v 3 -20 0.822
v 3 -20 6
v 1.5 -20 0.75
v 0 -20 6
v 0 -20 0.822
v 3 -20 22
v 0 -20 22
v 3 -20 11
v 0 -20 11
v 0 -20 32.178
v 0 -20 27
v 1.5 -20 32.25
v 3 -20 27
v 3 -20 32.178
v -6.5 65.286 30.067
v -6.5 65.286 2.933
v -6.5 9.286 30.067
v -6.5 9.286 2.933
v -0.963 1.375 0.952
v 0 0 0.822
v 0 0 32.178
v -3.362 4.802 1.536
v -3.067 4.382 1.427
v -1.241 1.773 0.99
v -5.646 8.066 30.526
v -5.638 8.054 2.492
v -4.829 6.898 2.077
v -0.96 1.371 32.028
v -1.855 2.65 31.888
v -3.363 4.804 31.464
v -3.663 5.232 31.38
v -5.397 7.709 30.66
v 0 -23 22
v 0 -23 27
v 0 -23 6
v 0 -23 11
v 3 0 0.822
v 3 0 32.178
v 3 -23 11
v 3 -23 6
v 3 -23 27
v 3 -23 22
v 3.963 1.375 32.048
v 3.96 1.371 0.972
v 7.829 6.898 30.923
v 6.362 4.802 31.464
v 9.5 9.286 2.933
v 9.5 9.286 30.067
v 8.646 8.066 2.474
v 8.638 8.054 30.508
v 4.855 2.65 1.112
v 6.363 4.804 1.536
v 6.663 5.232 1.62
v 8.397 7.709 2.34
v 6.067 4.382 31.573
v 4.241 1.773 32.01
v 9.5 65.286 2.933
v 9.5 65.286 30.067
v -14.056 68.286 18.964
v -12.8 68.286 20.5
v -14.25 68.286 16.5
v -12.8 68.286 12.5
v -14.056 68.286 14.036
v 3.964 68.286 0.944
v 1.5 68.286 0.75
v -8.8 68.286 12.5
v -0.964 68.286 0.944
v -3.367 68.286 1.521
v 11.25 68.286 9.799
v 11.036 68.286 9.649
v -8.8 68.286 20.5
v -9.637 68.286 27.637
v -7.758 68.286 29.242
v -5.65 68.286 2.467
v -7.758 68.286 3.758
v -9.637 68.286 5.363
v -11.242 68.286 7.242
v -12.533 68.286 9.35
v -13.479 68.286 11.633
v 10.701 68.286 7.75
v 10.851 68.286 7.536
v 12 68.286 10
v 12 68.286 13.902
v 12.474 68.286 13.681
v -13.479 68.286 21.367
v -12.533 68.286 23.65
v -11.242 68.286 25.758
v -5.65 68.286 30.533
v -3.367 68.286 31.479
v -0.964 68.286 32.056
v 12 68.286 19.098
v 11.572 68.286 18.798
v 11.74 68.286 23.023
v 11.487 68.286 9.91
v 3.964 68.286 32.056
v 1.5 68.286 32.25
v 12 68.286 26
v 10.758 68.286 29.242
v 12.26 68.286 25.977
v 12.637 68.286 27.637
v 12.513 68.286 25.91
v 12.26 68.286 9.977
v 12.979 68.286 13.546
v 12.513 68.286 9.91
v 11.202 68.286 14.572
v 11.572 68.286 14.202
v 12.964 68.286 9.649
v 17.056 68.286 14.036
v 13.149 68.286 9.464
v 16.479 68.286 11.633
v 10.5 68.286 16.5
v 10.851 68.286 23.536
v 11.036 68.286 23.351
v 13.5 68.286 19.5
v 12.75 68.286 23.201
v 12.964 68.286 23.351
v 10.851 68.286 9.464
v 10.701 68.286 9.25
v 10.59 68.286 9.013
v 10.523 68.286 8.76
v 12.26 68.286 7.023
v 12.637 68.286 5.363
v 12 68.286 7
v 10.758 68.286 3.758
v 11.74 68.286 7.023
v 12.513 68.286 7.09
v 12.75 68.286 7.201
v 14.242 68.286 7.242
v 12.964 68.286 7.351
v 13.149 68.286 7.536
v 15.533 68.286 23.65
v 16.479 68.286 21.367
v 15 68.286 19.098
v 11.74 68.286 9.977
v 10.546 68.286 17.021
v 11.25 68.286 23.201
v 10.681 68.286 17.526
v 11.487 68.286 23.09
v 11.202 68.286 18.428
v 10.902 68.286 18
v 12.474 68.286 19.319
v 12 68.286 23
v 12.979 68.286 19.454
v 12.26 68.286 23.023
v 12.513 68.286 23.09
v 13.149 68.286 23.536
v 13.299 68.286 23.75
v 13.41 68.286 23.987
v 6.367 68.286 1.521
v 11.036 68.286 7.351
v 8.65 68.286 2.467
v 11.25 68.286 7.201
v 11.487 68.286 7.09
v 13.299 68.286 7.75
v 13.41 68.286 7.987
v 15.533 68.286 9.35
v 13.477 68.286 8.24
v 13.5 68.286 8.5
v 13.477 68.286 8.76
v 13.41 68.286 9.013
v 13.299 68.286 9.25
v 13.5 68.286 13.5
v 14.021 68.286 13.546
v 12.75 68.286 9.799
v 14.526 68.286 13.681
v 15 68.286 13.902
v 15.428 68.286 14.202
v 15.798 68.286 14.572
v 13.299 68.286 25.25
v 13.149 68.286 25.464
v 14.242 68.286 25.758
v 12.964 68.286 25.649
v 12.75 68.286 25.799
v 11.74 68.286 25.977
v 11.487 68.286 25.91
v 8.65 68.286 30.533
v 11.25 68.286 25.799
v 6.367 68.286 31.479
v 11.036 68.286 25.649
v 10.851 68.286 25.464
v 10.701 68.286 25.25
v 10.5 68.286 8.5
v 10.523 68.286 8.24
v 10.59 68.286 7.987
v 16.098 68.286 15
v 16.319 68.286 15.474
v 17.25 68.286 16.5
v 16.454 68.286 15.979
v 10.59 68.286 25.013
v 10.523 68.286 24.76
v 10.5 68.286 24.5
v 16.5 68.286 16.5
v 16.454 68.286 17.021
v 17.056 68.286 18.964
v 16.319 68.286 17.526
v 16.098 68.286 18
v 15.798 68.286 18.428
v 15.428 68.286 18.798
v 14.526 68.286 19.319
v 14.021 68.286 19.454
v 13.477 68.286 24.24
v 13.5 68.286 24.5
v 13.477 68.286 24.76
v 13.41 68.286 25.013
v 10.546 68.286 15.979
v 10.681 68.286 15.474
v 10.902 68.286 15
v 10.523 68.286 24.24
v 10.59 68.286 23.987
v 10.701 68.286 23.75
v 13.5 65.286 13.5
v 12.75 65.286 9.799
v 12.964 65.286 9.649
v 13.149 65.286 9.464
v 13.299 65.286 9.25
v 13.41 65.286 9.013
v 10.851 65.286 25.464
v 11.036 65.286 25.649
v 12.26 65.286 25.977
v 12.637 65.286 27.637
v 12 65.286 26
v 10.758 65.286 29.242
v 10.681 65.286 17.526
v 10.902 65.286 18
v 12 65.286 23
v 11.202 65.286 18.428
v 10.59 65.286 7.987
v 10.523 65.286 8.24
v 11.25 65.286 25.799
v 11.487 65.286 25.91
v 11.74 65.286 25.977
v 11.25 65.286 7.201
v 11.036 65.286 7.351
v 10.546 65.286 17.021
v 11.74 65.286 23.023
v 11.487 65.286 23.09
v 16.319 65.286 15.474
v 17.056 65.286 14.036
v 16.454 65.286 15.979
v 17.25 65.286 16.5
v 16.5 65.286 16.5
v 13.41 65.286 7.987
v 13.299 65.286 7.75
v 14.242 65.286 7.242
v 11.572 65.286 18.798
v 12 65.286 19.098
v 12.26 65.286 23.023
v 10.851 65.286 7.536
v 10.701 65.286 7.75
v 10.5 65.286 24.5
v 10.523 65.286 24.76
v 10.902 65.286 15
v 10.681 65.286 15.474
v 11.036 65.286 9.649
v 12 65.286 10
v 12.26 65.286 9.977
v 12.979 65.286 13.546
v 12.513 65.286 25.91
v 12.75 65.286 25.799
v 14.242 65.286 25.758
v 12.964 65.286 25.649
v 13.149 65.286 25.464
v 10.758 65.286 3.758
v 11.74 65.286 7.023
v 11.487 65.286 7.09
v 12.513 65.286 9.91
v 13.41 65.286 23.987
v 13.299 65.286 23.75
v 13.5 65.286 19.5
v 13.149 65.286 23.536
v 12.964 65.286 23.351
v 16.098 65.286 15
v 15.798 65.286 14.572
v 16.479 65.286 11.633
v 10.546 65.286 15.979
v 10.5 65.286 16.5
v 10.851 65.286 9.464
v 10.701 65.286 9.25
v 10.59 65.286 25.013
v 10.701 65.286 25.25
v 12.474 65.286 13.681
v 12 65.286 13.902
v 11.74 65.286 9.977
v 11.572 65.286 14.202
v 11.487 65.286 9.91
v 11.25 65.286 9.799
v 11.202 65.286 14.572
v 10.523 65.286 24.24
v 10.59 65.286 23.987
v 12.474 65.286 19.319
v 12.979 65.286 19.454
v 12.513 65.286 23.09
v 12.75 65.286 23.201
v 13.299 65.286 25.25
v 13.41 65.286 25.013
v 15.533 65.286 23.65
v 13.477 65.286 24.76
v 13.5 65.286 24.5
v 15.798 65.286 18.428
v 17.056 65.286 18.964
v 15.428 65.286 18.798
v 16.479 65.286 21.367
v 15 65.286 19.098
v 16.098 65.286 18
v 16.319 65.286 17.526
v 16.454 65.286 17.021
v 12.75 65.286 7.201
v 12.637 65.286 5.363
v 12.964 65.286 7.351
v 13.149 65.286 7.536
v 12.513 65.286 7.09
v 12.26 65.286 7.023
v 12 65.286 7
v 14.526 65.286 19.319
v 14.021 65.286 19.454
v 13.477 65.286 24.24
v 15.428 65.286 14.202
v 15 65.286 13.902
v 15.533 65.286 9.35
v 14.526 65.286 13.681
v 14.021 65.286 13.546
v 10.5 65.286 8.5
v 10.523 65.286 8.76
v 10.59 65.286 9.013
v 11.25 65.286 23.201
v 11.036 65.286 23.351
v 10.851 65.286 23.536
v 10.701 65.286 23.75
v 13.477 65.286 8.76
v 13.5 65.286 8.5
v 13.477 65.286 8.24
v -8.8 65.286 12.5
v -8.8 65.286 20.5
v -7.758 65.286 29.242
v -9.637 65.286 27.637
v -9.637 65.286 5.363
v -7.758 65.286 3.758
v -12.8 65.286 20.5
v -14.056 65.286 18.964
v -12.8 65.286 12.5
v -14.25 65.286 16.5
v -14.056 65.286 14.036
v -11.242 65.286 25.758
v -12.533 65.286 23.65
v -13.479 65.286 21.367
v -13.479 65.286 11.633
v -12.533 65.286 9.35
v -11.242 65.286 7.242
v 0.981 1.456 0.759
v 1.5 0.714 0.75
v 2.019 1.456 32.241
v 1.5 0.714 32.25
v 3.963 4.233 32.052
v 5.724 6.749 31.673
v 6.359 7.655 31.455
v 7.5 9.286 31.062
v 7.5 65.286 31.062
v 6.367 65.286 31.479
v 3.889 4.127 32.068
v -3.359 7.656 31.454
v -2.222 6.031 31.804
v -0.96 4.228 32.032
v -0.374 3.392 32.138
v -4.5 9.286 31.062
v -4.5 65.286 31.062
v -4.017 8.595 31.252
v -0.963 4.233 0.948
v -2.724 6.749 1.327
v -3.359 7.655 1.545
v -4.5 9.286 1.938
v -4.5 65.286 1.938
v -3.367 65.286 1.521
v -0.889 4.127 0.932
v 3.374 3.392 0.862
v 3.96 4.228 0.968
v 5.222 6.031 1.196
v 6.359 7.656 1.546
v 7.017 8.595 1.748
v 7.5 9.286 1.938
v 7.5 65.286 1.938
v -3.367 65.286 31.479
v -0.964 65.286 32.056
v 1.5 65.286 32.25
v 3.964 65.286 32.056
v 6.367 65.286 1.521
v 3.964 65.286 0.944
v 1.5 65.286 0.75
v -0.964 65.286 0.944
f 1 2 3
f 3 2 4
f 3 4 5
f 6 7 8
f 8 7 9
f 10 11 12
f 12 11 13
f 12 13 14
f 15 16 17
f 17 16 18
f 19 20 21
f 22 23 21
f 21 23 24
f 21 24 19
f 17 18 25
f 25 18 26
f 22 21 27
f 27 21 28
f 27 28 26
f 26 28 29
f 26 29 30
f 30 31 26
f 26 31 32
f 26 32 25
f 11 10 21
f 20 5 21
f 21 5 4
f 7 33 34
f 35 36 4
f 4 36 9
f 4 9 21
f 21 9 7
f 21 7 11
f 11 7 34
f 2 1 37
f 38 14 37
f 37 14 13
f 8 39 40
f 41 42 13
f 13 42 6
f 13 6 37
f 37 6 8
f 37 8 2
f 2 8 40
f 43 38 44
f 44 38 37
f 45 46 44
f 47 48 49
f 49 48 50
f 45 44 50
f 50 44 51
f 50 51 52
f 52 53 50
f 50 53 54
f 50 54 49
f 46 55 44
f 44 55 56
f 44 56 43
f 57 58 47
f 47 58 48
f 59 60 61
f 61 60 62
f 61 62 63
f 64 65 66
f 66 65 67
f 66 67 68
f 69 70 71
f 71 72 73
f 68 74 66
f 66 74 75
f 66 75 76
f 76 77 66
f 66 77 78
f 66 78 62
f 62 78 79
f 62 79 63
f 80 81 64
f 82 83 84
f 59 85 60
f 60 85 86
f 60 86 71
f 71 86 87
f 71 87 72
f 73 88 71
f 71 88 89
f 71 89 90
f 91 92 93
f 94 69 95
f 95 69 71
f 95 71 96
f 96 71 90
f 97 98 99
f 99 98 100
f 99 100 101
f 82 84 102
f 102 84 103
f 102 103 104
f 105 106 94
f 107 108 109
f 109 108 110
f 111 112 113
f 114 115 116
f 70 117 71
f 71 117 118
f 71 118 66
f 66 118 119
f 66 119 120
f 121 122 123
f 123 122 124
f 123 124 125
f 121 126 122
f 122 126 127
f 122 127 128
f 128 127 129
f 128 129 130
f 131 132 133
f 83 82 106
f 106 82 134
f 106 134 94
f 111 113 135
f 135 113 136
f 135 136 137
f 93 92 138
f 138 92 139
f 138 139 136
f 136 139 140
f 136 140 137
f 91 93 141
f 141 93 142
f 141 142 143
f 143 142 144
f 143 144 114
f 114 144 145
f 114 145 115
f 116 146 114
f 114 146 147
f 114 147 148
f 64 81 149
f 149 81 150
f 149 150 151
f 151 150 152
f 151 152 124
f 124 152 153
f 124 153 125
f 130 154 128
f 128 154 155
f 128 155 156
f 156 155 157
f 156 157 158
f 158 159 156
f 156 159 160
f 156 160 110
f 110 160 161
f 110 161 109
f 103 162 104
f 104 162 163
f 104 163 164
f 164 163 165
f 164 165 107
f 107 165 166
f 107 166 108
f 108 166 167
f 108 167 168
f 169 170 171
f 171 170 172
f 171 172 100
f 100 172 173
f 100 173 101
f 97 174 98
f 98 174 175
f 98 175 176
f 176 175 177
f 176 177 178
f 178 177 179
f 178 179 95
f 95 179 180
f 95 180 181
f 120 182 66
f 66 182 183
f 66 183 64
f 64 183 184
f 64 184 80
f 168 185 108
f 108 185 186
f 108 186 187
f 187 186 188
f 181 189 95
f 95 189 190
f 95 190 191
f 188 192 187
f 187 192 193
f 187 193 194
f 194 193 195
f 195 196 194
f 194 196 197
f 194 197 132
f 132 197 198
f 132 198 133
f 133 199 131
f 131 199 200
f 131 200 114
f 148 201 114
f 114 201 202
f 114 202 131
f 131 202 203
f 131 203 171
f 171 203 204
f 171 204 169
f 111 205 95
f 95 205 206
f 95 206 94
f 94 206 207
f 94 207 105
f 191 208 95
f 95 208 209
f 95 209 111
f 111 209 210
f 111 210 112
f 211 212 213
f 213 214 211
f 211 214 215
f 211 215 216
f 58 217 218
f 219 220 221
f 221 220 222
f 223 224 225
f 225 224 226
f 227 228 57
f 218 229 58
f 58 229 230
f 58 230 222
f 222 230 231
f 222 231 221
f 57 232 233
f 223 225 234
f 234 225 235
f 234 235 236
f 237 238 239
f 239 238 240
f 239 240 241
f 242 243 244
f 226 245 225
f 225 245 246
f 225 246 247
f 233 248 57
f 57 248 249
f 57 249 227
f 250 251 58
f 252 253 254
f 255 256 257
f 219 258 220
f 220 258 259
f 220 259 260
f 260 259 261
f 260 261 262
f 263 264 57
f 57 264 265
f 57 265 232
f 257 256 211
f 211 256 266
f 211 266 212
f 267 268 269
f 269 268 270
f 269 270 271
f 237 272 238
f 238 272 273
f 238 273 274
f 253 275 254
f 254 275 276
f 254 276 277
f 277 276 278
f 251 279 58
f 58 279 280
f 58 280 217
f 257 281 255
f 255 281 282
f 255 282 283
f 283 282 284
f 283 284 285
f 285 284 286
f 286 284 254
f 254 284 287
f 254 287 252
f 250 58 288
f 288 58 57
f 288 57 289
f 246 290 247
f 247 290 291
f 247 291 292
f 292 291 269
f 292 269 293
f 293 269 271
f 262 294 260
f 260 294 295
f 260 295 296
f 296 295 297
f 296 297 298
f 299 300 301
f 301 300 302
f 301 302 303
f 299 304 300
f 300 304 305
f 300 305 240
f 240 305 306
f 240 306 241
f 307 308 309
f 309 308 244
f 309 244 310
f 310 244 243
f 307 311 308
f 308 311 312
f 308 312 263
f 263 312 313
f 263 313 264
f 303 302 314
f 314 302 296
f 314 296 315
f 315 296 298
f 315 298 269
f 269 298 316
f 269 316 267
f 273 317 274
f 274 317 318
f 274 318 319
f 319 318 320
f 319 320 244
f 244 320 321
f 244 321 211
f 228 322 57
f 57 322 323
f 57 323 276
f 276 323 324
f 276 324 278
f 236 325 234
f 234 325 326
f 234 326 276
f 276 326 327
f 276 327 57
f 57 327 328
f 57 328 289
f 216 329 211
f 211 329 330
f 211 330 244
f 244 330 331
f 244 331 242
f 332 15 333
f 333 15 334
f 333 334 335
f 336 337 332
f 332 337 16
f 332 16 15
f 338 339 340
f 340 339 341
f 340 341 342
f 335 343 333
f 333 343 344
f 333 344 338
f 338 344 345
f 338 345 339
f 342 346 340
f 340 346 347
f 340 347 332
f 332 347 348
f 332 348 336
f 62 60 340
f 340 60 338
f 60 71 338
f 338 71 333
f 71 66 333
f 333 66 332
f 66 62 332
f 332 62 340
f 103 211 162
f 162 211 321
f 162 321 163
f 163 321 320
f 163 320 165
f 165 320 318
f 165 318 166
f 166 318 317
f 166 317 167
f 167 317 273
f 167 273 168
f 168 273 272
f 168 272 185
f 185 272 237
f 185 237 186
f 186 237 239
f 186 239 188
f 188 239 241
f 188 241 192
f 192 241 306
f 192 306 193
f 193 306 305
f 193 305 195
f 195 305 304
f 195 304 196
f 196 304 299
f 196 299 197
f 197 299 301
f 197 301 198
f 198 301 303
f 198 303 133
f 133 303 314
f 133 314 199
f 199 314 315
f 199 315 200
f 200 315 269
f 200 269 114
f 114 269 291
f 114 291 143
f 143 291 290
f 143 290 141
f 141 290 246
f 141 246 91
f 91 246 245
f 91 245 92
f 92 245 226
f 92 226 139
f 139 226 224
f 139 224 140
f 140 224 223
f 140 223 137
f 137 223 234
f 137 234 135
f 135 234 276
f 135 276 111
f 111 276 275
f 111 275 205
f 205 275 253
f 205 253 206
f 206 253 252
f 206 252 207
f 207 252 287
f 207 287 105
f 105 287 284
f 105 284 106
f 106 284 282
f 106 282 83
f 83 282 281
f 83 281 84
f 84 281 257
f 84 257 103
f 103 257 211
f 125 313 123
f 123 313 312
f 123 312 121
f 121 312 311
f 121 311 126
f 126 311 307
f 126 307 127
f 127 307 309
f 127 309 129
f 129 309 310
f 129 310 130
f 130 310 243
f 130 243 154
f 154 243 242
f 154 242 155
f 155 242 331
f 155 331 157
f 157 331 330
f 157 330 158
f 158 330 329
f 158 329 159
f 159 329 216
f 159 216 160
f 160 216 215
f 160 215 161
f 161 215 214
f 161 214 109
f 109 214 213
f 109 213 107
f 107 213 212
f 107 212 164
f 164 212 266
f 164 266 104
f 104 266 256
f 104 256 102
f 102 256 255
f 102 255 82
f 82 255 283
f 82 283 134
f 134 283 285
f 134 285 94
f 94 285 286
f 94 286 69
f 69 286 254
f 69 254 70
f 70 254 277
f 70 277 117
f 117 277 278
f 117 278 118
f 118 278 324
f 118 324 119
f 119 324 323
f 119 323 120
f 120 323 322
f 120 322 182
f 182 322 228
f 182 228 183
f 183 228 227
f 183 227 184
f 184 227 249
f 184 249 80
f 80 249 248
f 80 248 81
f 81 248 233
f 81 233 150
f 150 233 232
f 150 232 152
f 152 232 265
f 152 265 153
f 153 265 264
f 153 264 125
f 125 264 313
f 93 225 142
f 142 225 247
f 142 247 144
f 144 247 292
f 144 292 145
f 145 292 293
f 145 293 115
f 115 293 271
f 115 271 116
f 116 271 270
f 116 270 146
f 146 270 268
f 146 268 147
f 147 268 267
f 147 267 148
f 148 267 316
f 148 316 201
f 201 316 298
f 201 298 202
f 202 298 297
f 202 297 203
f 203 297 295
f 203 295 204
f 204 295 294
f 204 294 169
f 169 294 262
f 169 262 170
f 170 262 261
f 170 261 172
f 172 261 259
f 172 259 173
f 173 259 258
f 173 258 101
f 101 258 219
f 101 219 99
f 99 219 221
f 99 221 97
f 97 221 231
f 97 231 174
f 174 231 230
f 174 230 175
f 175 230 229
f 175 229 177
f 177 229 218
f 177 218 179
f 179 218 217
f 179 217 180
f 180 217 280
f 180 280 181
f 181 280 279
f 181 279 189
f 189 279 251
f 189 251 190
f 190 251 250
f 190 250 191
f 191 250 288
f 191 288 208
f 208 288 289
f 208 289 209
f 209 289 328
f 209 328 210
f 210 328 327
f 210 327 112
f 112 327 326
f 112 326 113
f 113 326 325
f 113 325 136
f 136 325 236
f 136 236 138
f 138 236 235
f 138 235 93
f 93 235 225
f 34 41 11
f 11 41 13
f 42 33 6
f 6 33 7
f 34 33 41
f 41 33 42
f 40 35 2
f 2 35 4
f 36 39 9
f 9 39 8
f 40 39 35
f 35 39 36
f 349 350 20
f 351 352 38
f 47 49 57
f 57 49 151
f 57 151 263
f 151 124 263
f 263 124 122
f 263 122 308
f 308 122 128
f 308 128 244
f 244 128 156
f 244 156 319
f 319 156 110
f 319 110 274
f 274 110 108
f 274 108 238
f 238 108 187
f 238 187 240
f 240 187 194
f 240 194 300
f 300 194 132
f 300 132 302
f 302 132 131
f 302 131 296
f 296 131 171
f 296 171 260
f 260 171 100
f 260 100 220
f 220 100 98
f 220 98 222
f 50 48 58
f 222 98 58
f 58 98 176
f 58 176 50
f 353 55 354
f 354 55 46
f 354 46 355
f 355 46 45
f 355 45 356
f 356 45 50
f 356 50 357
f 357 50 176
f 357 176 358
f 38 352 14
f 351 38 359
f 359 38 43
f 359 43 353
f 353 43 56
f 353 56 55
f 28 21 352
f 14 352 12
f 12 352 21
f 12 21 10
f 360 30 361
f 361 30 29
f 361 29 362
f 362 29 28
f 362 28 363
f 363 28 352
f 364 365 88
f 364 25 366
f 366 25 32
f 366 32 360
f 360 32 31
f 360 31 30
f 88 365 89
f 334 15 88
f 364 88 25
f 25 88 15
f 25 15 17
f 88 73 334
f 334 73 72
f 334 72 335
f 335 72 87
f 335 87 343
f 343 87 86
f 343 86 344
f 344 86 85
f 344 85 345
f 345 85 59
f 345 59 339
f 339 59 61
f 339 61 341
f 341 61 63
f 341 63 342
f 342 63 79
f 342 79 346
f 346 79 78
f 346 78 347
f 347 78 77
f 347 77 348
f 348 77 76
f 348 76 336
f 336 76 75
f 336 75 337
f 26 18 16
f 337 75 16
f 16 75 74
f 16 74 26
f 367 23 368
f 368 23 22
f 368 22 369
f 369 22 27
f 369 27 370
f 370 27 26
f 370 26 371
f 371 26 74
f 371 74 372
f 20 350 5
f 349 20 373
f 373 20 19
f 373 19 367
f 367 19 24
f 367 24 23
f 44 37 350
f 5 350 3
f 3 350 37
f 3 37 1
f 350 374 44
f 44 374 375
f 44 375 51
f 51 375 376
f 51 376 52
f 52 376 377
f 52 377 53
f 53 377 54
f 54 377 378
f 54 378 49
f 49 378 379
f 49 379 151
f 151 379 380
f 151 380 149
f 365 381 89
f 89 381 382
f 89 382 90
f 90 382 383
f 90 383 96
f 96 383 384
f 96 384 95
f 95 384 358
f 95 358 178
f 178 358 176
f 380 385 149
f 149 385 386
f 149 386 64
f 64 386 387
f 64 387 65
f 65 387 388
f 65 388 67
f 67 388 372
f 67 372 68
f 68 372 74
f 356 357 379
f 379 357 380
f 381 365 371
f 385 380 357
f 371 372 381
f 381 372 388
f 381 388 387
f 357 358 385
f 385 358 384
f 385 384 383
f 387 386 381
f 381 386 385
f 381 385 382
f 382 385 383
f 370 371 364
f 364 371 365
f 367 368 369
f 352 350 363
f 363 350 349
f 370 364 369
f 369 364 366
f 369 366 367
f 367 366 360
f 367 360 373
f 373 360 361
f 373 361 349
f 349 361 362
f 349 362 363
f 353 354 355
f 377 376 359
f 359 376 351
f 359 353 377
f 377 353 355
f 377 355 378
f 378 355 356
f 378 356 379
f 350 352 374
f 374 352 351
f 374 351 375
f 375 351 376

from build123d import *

# Parameters (mm, degrees)
BOSS_EXTRU_1_DEPTH                   = 33
ESQUISSE3_R                          = 16.5
BOSS_EXTRU_2_DEPTH                   = 3
ESQUISSE4_R                          = 3
ESQUISSE4_R_2                        = 1.5
ENL_V_MAT_EXTRU_1_DEPTH              = 94.202215967
ESQUISSE5_W                          = 3
ESQUISSE5_H                          = 5
BOSS_EXTRU_3_DEPTH                   = 3
ENL_V_DE_MAT_EXTRU_MINCE2_DEPTH      = 30
ENL_V_DE_MAT_EXTRU_MINCE2_DEPTH_BACK = 90
ESQUISSE2_R                          = 35.75
ESQUISSE2_R_2                        = 15.75


with BuildPart() as part:
    # Esquisse1 → Boss.-Extru.1 (new body)
    with BuildSketch(Plane.XY):
        Polygon((3, 0), (9.5, 9.285714286), (9.5, 68.285714286), (-6.5, 68.285714286), (-6.5, 9.285714286), (0, 0), (0, -20), (3, -20), align=None)
        Polygon((7.5, 9.285714286), (7.5, 65.285714286), (-4.5, 65.285714286), (-4.5, 9.285714286), (1.5, 0.714285714), align=None, mode=Mode.SUBTRACT)
    extrude(amount=BOSS_EXTRU_1_DEPTH)

    # Esquisse3 → Boss.-Extru.2 (add)
    with BuildSketch(Plane(origin=(0, 68.285714286, 0), x_dir=(1, 0, 0), z_dir=(0, 1, 0))):
        with Locations((1.5, -16.5)):
            Circle(ESQUISSE3_R)
    extrude(amount=-BOSS_EXTRU_2_DEPTH)

    # Esquisse4 → Enlèv. mat.-Extru.1 (cut, through all)
    with BuildSketch(Plane.XZ.offset(-65.285714286)):
        with Locations(Location((13.5, 16.5, 0), (0, 0, 270))):
            Circle(ESQUISSE4_R)
        with Locations(Location((12, 8.5, 0), (0, 0, 270))):
            Circle(ESQUISSE4_R_2)
        with Locations(Location((12, 24.5, 0), (0, 0, 90))):
            Circle(ESQUISSE4_R_2)
        Polygon((-12.8, 16.5), (-12.8, 20.5), (-8.8, 20.5), (-8.8, 12.5), (-12.8, 12.5), align=None)
    extrude(amount=-ENL_V_MAT_EXTRU_1_DEPTH, mode=Mode.SUBTRACT)

    # Esquisse5 → Boss.-Extru.3 (add)
    with BuildSketch(Plane.XZ.offset(20)):
        with Locations((1.5, 24.5)):
            Rectangle(ESQUISSE5_W, ESQUISSE5_H)
        with Locations((1.5, 8.5)):
            Rectangle(ESQUISSE5_W, ESQUISSE5_H)
    extrude(amount=BOSS_EXTRU_3_DEPTH)

    # Esquisse2 → Enlèv. de mat.-Extru.-Mince2 (cut, two sides: drawn at the far end of the back side and taken through both)
    with BuildSketch(Plane(origin=(0, 68.285714286, 0), x_dir=(1, 0, 0), z_dir=(0, 1, 0)).offset(-ENL_V_DE_MAT_EXTRU_MINCE2_DEPTH_BACK)):
        with Locations((1.5, -16.5)):
            Circle(ESQUISSE2_R)
        with Locations((1.5, -16.5)):
            Circle(ESQUISSE2_R_2, mode=Mode.SUBTRACT)
    extrude(amount=ENL_V_DE_MAT_EXTRU_MINCE2_DEPTH + ENL_V_DE_MAT_EXTRU_MINCE2_DEPTH_BACK, mode=Mode.SUBTRACT)


solid = part.part
